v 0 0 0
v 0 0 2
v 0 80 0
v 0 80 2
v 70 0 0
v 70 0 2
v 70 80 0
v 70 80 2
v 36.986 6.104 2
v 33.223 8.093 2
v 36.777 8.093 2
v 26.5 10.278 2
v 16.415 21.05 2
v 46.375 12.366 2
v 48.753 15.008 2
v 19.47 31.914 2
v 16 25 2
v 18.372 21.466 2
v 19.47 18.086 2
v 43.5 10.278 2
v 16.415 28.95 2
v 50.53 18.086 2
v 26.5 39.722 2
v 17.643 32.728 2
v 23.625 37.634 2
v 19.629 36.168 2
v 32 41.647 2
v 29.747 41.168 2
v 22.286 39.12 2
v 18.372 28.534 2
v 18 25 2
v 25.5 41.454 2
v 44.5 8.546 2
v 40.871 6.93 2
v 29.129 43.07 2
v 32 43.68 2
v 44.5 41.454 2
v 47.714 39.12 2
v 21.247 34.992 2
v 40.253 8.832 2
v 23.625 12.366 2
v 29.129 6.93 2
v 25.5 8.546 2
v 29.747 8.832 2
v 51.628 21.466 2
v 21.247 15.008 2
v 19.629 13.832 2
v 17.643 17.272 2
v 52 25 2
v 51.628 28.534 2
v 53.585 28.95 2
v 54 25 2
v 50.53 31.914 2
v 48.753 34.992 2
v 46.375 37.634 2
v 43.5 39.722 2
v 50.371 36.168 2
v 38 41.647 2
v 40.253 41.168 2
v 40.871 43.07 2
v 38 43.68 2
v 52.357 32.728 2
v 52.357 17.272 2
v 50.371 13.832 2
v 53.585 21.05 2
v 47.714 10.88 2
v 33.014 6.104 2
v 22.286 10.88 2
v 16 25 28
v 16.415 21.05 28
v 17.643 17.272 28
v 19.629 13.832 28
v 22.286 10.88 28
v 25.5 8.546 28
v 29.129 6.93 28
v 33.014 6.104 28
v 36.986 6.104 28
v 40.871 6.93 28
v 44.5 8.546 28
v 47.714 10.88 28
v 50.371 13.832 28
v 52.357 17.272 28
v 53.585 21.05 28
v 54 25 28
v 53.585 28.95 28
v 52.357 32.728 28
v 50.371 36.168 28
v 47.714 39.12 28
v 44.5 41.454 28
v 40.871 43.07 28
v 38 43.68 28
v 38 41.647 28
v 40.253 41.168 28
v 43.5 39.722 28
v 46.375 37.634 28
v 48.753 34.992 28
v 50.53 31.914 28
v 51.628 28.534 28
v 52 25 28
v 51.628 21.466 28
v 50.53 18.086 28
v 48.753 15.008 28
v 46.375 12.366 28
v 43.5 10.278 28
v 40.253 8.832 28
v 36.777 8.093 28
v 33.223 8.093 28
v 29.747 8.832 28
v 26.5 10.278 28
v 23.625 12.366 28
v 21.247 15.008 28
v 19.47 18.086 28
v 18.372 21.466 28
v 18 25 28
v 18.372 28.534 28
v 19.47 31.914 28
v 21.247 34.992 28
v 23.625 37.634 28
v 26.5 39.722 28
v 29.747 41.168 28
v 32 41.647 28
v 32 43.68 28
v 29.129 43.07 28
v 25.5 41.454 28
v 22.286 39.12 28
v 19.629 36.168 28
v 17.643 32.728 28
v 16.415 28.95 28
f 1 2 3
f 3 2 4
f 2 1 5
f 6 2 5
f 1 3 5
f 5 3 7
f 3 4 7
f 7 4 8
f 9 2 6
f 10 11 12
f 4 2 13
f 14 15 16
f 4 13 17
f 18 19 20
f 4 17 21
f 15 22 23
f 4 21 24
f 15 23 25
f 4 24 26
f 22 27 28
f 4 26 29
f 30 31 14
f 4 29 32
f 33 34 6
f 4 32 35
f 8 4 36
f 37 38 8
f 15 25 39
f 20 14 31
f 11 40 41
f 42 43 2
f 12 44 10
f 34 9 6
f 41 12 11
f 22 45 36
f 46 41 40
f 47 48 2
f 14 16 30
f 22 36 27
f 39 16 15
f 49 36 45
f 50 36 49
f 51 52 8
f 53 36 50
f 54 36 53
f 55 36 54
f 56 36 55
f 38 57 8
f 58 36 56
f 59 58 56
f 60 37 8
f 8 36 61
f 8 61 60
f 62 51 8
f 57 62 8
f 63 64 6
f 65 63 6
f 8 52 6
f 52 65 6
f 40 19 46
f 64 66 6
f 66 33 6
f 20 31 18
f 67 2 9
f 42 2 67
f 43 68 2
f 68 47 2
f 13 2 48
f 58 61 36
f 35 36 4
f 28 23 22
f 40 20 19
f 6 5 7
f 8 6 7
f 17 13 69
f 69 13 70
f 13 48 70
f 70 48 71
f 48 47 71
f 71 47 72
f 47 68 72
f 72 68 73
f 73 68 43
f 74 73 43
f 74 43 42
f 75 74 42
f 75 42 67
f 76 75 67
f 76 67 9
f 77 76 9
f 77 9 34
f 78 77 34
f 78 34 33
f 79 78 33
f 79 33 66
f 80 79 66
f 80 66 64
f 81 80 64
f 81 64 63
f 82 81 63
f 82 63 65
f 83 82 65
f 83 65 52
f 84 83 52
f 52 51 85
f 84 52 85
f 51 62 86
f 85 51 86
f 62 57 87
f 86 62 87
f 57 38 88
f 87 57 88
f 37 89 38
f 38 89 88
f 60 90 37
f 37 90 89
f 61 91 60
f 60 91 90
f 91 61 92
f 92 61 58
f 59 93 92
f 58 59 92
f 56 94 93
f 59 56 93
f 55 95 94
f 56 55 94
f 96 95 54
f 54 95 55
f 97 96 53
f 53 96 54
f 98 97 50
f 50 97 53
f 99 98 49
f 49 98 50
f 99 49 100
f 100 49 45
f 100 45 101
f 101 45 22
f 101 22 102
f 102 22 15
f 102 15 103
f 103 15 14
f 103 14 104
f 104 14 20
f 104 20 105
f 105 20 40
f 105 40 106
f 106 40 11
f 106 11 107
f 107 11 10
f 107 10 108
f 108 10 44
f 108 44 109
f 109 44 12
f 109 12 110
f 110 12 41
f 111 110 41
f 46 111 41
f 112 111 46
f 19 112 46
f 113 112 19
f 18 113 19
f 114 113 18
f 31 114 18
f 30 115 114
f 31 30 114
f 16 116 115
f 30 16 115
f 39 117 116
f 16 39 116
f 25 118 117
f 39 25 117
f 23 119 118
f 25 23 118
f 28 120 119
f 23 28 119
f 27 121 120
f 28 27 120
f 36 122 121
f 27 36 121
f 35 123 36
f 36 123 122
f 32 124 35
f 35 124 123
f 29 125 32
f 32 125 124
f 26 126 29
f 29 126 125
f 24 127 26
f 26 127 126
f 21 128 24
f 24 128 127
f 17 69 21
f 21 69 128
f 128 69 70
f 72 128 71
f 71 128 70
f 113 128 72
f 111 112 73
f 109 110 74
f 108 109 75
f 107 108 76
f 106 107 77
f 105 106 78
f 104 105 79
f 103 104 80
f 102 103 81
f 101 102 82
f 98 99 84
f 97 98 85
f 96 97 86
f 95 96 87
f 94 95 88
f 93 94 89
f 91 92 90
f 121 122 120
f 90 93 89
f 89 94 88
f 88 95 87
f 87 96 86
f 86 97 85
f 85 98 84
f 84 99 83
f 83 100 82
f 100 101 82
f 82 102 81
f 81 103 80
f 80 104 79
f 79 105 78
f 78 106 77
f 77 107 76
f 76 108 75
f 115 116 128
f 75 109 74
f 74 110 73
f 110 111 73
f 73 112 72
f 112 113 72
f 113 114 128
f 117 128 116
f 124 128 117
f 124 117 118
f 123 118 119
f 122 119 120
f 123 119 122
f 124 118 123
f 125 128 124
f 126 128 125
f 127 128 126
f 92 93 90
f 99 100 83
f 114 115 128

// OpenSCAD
cube([70, 80, 2]);
difference() {
	translate([35, 25, 0]) difference() {
		cylinder(28, 19, 19,0);
		cylinder(28, 17, 17,0);

	}
	translate([32, 40, 0]) cube([6, 10, 28]);
}
